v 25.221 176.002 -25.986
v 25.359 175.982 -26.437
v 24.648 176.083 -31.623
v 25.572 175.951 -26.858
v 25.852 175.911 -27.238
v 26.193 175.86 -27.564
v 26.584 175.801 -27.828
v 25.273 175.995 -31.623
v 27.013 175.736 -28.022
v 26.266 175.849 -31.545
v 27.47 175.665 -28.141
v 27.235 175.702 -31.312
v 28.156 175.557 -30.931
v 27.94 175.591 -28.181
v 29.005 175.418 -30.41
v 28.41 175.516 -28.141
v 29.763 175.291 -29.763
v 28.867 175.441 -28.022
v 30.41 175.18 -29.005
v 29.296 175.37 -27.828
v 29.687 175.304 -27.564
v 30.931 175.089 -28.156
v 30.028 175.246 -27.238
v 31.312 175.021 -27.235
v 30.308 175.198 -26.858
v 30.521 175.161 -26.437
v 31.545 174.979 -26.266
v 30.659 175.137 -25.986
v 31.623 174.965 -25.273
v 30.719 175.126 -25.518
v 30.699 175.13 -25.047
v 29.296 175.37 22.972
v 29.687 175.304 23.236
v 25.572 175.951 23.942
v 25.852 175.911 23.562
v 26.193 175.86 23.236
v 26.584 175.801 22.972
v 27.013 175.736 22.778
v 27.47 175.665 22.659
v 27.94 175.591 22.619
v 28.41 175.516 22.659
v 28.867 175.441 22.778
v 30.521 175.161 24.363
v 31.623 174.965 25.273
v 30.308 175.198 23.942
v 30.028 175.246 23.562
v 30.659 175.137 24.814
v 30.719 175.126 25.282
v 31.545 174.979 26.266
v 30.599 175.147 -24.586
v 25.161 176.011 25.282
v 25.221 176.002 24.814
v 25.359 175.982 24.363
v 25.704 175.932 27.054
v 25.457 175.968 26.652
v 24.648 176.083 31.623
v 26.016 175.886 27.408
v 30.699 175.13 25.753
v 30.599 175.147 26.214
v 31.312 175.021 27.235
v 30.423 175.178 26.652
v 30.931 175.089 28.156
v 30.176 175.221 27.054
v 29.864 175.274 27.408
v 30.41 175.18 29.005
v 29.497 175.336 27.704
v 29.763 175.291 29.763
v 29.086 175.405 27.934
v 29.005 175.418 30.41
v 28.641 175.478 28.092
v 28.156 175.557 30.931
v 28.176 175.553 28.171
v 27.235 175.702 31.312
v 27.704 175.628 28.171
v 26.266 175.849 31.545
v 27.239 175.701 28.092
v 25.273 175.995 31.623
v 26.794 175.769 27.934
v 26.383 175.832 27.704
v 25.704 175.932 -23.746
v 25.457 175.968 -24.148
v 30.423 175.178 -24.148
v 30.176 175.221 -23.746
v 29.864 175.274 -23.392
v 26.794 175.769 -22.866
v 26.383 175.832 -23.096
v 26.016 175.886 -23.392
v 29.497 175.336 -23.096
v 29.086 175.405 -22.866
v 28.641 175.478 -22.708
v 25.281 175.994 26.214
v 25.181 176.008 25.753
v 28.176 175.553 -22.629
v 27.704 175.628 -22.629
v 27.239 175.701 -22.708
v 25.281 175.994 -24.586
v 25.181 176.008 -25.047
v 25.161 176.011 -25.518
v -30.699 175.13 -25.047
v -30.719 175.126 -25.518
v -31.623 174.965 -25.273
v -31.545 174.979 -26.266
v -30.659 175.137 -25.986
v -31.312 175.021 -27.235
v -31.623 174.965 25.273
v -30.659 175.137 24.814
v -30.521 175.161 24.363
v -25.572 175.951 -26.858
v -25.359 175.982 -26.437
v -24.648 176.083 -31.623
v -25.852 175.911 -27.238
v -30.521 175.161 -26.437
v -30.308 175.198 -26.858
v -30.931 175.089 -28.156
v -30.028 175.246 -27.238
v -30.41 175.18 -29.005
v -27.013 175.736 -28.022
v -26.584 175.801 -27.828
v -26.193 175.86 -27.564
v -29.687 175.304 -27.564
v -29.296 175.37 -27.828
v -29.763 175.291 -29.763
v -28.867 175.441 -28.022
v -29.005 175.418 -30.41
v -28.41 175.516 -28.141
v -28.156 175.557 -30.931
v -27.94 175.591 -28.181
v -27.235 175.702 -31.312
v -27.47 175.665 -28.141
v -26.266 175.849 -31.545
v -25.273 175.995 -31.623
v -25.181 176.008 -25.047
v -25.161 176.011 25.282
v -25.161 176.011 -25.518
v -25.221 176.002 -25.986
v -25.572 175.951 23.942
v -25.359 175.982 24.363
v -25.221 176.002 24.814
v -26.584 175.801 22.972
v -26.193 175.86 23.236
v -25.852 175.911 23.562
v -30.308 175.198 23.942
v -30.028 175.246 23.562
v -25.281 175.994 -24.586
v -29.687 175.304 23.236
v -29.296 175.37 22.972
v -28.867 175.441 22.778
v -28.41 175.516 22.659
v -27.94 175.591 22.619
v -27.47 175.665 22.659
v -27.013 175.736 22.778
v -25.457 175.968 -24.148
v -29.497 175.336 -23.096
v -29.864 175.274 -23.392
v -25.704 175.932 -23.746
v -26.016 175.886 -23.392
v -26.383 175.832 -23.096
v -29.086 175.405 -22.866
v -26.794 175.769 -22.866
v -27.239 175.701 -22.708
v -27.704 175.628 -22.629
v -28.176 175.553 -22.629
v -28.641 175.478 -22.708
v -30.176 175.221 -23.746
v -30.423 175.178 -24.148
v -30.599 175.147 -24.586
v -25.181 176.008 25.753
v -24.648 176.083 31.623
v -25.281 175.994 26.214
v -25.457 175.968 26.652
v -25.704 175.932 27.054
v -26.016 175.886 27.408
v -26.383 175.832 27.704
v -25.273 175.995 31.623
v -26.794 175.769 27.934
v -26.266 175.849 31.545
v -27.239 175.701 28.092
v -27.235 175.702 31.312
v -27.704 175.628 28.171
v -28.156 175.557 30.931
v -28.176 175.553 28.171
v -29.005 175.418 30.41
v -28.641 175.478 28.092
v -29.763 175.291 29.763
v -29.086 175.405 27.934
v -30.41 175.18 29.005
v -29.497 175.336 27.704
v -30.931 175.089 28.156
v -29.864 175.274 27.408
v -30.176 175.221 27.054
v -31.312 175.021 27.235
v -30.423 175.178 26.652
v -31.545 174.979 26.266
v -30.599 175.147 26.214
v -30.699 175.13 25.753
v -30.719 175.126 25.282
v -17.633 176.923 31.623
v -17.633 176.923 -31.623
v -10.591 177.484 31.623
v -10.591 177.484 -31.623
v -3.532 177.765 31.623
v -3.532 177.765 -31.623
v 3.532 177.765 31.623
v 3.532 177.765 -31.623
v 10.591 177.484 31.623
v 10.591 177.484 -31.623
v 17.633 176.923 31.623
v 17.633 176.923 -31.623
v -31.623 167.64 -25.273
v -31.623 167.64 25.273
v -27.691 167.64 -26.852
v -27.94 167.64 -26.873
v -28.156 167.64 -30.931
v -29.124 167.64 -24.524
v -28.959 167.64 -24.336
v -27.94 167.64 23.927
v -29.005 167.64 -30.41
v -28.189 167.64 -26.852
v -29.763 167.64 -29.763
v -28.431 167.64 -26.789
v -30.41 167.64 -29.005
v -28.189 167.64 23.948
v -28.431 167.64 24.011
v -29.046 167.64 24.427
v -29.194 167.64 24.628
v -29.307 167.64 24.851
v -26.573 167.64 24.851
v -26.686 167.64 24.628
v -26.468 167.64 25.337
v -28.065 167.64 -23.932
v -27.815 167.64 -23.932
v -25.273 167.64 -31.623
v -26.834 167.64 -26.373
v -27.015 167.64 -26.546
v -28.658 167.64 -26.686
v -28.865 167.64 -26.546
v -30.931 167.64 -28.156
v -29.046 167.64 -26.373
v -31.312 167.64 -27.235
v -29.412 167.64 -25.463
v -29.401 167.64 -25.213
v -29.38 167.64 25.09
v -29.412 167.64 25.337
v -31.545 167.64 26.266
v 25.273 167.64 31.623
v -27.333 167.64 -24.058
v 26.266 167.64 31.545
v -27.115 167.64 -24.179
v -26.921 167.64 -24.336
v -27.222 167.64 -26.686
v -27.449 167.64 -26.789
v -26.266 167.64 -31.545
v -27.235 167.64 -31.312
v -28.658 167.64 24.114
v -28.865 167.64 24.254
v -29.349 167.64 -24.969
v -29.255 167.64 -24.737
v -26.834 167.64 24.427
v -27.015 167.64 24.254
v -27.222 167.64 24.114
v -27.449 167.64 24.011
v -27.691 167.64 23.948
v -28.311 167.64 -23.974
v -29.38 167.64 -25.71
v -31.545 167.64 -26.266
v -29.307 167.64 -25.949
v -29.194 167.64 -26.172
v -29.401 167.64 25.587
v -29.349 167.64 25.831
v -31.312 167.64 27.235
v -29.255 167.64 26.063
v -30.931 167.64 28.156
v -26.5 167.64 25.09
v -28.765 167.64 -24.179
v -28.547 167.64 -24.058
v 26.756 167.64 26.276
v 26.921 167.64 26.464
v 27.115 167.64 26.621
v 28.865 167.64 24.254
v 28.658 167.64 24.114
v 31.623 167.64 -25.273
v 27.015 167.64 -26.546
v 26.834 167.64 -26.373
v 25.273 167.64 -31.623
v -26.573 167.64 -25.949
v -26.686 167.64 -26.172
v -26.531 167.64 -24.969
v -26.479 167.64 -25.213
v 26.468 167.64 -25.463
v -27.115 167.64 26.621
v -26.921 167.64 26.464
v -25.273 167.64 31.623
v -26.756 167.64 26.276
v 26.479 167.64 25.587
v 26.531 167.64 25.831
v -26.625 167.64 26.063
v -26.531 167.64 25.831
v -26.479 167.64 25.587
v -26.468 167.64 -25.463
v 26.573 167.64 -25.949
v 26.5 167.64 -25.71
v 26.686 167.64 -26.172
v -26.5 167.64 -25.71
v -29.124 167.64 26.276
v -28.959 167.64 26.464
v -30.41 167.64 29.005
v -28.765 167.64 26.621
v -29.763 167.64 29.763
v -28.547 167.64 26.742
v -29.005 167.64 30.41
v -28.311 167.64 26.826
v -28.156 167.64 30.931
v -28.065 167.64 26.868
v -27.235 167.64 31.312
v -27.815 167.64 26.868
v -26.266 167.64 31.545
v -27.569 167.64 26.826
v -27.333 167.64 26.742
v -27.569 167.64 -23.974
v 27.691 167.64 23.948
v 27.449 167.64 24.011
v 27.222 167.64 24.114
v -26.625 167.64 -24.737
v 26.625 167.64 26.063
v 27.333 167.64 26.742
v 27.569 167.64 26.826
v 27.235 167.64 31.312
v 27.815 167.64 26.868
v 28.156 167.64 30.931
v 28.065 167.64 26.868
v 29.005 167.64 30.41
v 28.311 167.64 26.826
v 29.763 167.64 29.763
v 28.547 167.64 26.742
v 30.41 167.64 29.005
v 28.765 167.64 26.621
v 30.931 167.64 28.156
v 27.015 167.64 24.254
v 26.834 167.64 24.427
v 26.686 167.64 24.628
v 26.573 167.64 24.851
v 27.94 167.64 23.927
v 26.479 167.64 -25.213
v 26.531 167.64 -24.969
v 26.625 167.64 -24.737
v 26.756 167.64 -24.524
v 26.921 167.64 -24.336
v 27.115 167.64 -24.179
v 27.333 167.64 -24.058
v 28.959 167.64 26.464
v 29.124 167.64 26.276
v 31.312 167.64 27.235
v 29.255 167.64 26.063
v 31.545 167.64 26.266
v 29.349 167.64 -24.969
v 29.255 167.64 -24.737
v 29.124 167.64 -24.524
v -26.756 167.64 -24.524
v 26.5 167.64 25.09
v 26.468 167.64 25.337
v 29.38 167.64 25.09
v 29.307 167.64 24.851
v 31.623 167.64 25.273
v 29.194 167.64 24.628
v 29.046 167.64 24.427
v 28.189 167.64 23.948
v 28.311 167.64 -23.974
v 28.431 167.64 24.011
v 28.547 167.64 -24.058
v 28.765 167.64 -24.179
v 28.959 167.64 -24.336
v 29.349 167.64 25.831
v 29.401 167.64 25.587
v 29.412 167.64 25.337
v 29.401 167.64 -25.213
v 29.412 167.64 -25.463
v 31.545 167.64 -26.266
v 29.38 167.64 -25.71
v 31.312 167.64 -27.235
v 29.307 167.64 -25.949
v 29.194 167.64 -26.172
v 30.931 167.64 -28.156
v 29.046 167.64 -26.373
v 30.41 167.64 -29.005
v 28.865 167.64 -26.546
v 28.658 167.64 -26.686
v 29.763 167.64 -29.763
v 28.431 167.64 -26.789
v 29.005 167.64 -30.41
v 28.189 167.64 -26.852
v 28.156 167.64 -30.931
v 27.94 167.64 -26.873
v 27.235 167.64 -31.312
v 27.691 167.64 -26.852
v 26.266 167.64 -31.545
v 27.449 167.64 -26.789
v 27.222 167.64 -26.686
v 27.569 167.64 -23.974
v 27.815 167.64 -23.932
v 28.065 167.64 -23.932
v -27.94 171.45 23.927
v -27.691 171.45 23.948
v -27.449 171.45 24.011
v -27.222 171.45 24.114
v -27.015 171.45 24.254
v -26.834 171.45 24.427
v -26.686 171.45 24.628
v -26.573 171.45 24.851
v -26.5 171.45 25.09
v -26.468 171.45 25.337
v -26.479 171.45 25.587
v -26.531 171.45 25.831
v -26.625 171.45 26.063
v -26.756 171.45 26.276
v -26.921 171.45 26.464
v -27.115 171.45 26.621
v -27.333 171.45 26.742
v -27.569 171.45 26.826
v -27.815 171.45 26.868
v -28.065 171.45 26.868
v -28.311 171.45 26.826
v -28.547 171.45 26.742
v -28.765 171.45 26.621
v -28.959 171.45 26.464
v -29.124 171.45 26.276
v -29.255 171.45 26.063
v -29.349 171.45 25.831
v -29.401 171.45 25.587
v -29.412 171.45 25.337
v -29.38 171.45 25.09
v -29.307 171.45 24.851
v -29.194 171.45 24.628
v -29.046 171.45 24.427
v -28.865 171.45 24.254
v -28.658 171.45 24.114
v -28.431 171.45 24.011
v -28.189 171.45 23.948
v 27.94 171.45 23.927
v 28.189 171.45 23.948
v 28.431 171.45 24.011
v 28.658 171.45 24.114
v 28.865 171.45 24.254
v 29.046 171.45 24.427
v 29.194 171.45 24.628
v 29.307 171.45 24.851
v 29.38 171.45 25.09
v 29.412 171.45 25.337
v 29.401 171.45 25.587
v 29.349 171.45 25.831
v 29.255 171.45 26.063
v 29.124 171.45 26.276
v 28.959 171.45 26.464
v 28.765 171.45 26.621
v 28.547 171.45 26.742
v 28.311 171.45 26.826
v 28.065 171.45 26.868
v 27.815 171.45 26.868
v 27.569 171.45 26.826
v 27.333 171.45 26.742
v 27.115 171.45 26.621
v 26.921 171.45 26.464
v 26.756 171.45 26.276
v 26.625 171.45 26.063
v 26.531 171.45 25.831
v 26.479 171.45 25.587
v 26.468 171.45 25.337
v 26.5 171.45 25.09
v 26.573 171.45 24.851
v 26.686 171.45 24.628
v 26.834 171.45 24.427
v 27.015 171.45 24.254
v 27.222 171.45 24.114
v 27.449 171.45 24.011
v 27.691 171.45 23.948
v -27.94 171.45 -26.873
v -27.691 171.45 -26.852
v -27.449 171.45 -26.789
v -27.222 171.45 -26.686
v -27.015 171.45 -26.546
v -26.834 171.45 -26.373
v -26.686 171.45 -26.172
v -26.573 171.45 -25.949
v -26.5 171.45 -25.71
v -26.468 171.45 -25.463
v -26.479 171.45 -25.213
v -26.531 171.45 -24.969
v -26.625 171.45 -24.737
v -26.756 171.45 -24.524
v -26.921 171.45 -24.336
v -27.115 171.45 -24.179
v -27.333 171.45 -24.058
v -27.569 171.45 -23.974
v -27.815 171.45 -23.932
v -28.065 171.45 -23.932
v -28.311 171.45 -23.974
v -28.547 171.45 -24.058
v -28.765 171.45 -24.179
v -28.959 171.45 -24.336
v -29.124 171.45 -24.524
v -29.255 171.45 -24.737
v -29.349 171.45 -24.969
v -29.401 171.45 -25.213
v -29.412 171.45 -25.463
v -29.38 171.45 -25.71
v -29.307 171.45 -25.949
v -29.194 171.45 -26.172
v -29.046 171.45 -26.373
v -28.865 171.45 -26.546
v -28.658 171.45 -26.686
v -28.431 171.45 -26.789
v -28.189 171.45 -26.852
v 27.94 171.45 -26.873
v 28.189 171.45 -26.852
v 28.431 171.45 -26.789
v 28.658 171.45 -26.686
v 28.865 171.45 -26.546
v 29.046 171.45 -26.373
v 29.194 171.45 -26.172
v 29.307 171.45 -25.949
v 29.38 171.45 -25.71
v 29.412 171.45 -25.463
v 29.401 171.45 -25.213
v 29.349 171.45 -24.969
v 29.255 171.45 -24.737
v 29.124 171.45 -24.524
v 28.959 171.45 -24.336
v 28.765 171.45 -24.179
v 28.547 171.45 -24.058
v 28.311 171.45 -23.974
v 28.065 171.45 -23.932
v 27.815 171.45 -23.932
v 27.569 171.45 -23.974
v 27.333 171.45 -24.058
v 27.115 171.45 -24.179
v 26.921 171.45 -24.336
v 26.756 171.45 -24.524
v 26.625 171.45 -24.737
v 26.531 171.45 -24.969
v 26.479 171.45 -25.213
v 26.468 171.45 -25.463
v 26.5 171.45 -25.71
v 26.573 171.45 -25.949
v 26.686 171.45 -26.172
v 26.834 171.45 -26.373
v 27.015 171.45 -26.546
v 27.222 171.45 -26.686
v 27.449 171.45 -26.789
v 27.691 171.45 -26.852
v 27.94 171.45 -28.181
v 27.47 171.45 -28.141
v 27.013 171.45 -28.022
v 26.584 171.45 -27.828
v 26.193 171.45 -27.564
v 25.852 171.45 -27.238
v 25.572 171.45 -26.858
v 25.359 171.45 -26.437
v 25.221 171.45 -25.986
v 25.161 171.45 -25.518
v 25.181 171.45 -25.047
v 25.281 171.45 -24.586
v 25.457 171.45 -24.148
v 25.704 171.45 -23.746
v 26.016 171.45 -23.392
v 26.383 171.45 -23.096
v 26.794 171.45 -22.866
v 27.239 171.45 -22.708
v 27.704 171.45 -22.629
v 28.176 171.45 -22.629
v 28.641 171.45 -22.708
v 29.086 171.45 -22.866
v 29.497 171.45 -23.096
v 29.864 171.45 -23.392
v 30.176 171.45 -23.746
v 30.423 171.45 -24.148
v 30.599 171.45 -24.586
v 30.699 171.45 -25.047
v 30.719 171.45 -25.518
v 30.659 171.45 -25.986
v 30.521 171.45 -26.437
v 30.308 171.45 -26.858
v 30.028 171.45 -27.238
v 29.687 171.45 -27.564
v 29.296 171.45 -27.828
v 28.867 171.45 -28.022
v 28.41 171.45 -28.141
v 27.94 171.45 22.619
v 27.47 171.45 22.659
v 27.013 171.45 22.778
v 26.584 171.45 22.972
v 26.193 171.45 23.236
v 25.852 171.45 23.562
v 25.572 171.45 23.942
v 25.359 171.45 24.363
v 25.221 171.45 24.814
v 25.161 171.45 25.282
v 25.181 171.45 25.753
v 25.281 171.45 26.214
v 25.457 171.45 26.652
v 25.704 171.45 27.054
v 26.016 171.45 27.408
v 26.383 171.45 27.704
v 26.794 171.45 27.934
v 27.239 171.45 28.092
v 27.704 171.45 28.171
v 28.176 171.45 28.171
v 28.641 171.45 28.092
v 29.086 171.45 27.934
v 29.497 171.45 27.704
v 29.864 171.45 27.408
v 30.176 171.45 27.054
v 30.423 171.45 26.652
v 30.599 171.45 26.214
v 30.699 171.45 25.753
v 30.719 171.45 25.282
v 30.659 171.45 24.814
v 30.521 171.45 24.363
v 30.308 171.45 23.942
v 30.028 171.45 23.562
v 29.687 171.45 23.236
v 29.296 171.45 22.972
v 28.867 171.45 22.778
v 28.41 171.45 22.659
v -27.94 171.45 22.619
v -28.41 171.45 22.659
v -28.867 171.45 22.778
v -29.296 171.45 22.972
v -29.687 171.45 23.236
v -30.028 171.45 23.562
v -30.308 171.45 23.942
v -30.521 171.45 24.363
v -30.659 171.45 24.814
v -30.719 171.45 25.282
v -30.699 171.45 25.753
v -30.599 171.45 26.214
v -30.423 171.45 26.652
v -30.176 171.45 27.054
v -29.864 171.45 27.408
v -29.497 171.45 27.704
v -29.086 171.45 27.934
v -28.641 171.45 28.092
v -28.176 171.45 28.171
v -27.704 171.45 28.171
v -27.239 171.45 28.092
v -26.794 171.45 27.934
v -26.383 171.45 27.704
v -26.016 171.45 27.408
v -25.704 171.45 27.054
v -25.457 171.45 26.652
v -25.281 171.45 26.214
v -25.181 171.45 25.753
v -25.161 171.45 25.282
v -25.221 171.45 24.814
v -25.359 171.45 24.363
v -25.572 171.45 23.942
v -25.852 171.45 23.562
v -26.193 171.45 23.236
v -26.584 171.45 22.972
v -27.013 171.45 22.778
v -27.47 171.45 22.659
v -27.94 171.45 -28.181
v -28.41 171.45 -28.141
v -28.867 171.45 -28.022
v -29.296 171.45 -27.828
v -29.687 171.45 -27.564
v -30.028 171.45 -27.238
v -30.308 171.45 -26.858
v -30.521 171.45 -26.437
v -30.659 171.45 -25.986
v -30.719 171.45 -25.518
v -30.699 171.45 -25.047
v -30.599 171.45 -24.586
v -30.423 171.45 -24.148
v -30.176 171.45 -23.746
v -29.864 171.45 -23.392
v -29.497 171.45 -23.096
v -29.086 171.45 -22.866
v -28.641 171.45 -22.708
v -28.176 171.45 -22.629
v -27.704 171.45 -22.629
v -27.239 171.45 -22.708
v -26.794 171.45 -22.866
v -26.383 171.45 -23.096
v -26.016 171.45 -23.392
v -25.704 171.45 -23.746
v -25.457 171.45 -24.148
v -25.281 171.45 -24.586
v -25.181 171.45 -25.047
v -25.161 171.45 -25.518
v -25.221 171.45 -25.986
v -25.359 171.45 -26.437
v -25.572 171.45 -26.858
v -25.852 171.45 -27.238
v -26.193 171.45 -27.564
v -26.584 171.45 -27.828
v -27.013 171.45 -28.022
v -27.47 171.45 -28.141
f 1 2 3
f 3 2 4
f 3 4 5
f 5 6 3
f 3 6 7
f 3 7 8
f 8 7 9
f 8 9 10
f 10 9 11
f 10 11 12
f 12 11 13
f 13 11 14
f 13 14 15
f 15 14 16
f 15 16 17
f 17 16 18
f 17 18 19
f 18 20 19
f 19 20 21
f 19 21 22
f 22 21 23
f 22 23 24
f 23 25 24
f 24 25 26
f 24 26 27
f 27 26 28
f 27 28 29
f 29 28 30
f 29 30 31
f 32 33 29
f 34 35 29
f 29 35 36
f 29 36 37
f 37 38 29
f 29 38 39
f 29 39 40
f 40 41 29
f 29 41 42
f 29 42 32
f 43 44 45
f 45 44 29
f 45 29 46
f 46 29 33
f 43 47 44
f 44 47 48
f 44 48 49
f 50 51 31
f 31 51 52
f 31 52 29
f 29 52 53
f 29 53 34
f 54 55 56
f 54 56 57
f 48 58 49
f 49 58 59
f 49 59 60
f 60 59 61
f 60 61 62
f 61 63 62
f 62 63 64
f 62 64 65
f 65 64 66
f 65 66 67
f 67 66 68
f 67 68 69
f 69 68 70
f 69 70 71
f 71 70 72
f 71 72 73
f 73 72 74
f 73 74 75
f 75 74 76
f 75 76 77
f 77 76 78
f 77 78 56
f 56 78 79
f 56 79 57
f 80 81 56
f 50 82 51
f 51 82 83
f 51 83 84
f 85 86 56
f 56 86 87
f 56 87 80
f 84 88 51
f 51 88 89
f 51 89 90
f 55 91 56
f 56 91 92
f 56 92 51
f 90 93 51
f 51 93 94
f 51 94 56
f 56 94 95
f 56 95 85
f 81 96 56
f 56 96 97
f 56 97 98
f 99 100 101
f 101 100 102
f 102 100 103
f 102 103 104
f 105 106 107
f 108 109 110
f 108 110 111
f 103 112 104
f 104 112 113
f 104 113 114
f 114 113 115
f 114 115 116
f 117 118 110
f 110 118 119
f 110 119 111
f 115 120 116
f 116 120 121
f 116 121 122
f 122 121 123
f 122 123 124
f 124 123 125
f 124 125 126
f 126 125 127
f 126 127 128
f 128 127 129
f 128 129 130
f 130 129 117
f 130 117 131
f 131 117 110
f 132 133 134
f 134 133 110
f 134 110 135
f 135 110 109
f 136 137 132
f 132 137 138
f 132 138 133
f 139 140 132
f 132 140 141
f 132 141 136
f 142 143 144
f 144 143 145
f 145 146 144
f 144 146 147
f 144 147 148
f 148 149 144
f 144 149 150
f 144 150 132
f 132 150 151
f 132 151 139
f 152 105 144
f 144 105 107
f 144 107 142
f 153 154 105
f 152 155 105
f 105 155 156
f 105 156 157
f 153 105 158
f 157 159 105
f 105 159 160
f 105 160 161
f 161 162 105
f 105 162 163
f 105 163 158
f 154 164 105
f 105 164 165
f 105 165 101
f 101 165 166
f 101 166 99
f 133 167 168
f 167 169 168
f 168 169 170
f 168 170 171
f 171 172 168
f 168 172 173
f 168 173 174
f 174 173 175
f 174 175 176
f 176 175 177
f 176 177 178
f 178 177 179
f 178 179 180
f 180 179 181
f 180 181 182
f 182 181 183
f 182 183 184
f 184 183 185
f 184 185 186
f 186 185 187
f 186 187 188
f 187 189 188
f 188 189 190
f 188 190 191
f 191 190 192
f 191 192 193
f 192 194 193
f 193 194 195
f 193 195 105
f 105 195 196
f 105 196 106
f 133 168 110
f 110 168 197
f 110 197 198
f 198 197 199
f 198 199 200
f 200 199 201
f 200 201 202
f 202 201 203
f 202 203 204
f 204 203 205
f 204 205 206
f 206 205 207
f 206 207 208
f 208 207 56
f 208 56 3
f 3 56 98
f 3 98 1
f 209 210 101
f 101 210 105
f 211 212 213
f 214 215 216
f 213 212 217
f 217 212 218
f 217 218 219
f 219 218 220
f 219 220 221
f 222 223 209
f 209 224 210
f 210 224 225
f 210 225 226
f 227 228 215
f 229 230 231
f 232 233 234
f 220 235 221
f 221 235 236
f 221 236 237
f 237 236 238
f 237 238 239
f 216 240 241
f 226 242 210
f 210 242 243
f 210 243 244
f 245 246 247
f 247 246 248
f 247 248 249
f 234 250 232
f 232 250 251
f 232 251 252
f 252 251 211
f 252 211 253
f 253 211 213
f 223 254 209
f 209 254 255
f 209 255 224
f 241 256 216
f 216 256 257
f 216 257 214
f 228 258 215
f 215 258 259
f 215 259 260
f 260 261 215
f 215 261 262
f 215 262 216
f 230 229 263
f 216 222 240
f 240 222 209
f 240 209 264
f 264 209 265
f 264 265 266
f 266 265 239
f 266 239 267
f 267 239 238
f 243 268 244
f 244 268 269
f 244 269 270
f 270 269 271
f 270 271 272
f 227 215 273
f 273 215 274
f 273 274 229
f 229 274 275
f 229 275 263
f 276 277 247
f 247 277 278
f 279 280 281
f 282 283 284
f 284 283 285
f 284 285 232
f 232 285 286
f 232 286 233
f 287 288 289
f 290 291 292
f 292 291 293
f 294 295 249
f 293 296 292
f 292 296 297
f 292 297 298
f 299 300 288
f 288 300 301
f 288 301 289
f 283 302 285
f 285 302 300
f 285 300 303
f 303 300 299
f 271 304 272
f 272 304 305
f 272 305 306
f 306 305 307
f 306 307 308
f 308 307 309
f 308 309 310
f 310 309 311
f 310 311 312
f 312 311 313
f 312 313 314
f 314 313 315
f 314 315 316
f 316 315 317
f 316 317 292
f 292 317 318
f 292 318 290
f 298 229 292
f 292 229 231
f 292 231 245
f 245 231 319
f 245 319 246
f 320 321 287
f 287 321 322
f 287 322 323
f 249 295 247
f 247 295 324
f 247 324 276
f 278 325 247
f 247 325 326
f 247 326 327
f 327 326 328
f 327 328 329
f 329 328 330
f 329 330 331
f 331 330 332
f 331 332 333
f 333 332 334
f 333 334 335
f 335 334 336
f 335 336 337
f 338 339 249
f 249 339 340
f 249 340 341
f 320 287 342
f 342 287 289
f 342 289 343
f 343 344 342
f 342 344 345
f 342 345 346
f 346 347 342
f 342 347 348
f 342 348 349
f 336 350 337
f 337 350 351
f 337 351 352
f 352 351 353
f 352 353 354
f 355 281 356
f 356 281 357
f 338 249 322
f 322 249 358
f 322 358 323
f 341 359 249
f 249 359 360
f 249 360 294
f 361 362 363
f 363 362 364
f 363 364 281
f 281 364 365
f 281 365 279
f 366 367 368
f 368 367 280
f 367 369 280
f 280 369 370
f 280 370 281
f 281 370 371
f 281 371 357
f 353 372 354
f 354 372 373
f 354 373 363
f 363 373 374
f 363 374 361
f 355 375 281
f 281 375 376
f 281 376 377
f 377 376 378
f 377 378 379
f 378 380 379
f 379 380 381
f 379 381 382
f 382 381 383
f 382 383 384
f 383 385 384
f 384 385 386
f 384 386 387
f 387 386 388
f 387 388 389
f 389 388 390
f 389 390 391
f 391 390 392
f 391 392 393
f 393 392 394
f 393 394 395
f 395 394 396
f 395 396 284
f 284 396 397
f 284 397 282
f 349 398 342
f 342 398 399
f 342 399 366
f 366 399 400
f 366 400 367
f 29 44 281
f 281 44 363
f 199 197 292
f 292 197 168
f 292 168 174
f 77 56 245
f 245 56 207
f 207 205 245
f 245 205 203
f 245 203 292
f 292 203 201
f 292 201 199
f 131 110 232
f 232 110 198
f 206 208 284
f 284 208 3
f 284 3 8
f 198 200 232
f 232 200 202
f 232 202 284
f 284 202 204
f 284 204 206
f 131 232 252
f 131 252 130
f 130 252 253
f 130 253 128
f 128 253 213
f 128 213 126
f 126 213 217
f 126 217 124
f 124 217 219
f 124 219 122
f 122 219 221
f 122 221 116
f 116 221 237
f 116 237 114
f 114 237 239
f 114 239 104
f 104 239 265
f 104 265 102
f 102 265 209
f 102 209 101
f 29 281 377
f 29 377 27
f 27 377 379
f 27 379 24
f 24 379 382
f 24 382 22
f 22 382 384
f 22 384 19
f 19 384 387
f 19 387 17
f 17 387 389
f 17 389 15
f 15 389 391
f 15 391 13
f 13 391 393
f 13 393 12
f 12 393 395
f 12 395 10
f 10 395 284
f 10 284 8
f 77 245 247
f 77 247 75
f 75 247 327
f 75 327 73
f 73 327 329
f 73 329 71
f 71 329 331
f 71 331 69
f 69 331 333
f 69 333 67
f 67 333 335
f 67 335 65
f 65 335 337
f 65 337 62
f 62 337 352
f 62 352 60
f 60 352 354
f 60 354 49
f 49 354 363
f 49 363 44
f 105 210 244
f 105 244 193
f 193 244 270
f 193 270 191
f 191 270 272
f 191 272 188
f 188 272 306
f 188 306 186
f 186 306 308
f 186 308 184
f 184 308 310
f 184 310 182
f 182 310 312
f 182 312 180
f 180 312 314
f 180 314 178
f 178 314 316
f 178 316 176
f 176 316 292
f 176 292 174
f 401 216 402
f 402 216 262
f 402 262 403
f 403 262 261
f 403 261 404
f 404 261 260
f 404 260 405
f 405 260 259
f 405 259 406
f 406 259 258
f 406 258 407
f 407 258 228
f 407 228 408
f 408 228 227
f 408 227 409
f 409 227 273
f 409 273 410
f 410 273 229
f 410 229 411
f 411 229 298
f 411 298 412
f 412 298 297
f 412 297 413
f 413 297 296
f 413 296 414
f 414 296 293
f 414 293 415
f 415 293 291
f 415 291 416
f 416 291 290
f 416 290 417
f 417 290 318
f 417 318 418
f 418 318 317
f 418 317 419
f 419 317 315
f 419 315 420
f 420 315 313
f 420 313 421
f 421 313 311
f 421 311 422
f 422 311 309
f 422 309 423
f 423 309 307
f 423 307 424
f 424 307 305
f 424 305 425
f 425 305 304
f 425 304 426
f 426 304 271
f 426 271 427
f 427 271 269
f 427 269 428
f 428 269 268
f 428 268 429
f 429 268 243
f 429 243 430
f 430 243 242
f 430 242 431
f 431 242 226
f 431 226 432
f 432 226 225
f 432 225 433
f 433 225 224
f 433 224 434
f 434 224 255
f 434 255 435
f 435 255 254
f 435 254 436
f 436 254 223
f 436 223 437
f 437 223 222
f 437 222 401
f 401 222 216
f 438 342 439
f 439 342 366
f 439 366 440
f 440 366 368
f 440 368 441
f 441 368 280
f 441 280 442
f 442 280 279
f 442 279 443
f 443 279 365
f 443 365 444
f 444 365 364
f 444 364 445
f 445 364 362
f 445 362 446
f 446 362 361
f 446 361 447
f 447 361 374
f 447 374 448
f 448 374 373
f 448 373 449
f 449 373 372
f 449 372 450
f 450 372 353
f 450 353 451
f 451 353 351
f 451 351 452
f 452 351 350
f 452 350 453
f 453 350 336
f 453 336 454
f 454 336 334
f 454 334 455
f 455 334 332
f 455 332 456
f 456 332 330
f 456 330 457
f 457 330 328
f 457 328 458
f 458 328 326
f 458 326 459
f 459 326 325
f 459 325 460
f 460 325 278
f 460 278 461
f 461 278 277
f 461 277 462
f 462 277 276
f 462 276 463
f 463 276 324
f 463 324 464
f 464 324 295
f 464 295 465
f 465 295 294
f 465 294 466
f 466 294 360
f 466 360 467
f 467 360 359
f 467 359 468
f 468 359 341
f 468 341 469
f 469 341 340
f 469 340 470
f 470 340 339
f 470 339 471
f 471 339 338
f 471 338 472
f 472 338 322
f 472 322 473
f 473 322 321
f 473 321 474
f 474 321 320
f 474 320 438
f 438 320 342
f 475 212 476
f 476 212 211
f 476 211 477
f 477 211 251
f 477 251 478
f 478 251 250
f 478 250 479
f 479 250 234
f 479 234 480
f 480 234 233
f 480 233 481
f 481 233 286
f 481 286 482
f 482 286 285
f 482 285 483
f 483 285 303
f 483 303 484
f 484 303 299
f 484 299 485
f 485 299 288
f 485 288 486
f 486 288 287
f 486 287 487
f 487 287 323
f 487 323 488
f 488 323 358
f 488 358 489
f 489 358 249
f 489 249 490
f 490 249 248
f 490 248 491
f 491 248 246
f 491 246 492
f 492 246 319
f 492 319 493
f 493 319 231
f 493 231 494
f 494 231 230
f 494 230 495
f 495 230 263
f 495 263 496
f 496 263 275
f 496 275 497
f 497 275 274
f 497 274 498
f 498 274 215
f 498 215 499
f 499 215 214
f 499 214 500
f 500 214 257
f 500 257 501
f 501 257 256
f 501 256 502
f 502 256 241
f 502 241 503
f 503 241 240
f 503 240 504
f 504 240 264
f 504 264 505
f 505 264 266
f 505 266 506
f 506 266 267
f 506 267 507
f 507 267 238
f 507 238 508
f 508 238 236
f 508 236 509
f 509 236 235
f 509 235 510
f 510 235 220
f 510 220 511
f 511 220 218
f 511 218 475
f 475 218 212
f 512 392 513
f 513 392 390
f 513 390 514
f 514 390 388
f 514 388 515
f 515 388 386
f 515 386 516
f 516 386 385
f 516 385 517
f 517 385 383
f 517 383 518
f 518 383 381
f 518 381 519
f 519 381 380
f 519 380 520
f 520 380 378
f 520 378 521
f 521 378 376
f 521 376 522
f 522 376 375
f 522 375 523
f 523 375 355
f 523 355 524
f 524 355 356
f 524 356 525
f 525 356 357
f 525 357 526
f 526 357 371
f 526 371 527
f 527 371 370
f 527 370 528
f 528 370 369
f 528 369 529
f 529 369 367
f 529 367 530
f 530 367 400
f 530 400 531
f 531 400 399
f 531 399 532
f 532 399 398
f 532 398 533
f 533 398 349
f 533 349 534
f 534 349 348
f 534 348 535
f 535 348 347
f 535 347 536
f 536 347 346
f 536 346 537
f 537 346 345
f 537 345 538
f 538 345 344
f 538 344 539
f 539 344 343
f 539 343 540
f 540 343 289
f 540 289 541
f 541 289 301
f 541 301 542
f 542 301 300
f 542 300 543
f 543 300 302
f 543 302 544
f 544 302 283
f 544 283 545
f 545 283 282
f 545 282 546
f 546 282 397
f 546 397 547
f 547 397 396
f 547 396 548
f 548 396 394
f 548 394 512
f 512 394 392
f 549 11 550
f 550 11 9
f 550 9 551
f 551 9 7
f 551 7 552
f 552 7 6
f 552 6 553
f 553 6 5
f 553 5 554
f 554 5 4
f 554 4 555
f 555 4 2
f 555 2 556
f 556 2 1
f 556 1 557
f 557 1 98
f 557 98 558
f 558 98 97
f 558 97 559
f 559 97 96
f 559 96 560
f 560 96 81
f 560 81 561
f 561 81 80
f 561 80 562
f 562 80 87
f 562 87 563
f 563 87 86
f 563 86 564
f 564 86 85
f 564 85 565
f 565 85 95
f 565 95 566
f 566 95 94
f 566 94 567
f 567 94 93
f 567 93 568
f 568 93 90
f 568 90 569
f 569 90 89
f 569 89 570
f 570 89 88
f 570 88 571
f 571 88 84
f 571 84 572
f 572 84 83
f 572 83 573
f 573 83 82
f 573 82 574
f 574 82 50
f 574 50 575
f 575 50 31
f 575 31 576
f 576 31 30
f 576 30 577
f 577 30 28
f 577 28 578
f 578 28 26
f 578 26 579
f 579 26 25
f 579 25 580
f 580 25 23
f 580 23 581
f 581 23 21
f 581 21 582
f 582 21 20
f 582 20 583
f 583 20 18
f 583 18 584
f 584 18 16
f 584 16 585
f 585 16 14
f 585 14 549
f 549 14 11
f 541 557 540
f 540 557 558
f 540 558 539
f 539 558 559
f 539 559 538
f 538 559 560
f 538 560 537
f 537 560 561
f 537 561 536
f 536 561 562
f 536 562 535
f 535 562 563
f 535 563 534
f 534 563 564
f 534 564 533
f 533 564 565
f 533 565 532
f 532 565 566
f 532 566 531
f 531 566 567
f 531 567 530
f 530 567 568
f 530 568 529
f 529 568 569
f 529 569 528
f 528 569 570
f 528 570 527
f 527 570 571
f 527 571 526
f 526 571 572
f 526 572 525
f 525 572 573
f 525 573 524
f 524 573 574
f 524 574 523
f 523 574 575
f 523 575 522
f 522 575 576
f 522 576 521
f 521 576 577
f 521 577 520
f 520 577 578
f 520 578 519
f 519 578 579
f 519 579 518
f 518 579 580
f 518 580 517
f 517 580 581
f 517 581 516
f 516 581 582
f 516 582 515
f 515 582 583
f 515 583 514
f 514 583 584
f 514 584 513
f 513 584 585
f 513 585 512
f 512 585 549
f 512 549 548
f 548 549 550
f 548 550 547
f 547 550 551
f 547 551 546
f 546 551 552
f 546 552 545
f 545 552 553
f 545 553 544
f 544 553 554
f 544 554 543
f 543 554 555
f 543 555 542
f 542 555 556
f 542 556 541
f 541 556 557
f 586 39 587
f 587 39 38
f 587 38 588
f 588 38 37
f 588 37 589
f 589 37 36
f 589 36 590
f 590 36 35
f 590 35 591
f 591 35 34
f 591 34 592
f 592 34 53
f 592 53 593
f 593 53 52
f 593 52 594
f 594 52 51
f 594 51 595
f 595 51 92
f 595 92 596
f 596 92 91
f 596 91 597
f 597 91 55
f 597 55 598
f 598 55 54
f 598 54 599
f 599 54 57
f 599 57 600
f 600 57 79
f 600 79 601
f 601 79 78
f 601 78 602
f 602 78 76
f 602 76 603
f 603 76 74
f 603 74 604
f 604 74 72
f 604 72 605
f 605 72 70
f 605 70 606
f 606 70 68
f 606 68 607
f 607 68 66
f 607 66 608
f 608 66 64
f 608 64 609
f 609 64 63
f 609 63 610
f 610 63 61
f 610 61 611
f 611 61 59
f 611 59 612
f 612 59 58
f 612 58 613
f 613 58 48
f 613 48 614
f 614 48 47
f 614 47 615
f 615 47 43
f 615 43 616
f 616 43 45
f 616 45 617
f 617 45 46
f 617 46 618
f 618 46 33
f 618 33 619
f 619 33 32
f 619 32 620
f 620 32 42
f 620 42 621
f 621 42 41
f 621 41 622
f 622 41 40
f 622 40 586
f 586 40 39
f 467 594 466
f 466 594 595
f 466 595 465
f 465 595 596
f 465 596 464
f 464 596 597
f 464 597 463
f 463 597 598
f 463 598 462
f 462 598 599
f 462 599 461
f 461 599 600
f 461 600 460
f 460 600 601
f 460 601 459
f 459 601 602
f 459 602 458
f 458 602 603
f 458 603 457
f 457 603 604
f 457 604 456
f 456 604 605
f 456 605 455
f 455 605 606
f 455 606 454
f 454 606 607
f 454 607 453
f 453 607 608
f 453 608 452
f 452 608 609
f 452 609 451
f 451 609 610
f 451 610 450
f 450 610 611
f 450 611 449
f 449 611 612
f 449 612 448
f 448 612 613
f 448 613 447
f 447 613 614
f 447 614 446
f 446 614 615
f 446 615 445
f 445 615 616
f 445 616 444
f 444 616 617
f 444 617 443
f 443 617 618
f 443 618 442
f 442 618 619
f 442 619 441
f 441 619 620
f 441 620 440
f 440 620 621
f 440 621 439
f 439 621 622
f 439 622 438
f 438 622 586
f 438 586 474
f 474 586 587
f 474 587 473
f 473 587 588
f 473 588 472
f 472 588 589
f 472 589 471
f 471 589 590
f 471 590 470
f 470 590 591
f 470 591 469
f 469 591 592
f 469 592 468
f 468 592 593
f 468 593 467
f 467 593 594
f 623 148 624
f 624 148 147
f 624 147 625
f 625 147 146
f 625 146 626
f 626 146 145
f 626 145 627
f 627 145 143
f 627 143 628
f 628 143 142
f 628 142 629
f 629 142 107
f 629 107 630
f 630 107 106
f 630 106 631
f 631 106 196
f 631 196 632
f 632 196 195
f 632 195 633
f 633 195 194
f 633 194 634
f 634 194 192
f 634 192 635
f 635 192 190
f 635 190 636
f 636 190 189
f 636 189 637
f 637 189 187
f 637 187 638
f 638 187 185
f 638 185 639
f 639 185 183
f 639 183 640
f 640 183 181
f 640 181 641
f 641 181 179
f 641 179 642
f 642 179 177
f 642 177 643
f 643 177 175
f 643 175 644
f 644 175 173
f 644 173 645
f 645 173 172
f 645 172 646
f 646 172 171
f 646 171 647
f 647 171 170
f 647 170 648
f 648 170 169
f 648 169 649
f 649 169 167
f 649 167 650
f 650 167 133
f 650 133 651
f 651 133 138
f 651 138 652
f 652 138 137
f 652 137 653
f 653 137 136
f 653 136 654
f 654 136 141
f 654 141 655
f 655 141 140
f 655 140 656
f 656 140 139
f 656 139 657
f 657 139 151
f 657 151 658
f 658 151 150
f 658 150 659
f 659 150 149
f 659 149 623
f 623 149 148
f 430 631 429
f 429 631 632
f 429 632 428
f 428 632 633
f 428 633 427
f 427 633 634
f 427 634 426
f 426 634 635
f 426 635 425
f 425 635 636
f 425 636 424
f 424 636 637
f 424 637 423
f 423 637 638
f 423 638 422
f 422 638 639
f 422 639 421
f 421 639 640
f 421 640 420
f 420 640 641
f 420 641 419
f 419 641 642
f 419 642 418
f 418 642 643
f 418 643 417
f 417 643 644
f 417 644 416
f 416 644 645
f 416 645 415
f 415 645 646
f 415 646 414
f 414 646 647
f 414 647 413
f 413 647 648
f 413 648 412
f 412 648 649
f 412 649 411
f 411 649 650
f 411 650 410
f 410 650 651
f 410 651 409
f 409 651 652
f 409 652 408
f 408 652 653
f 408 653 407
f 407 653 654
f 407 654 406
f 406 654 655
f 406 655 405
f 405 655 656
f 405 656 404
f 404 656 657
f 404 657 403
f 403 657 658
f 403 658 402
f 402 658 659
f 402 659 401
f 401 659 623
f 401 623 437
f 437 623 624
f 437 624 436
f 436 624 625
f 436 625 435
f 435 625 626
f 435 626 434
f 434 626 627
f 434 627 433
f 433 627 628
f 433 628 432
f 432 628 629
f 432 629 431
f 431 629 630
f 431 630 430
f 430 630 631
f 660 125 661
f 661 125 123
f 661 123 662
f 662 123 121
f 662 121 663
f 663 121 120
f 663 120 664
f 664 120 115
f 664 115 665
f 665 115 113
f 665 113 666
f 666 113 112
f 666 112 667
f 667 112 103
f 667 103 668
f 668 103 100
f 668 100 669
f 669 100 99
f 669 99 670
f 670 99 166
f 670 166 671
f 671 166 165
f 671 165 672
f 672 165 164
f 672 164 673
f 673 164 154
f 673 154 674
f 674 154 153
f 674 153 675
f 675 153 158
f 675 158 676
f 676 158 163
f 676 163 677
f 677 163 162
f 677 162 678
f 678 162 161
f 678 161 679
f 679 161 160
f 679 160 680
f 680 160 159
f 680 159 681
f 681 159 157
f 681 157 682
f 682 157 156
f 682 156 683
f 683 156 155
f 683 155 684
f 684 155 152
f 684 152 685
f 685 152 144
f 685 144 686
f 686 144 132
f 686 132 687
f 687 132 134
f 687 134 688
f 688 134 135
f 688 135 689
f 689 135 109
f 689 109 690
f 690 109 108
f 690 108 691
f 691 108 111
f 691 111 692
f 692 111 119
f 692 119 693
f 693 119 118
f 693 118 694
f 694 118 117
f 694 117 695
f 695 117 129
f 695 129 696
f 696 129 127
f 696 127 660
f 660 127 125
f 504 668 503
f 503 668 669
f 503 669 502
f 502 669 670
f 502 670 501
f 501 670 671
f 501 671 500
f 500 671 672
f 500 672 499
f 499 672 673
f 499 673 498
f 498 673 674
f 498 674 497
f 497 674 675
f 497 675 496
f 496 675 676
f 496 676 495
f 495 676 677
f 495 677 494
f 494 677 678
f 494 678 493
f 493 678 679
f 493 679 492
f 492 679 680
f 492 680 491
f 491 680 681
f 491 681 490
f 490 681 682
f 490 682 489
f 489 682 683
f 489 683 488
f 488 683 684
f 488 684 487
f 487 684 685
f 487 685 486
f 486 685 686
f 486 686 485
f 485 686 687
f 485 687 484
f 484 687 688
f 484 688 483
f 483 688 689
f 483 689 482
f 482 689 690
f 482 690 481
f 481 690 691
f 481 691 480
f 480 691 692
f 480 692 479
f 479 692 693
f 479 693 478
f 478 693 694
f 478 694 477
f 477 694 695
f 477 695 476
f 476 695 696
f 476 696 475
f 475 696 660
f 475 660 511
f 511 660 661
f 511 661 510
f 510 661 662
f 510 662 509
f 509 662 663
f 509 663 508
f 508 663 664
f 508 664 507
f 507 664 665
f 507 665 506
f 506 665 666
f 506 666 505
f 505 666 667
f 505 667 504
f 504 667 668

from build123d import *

# Parameters (mm, degrees)
BOSS_EXTRUDE1_DEPTH             = 31.623
FILLET1_R                       = 6.35
F_32_0_116_DIAMETER_HOLE1_D     = 2.9464
F_32_0_116_DIAMETER_HOLE1_DEPTH = 3.81
SKETCH7_R                       = 2.7813
CUT_EXTRUDE4_DEPTH              = 46.170242106


with BuildPart() as part:
    # Sketch1 → Boss-Extrude1 (new, symmetric)
    with BuildSketch(Plane.XY):
        with BuildLine():
            Line((-31.623, 174.965213317), (-31.623, 167.64))
            Line((-31.623, 167.64), (-24.003, 167.64))
            Line((-24.003, 167.64), (24.003, 167.64))
            Line((24.003, 167.64), (31.623, 167.64))
            Line((31.623, 167.64), (31.623, 174.965213317))
            ThreePointArc((31.623, 174.965213317), (0, 177.8), (-31.623, 174.965213317))
        make_face()
    extrude(amount=BOSS_EXTRUDE1_DEPTH, both=True)

    # Fillet1
    fillet1_edges = [part.edges().sort_by_distance(p)[0] for p in [
        (-31.623, 171.302606658, -31.623),
        (31.623, 171.302606658, -31.623),
        (31.623, 171.302606658, 31.623),
        (-31.623, 171.302606658, 31.623),
    ]]
    fillet(fillet1_edges, radius=FILLET1_R)

    # #32 (0.116) Diameter Hole1
    with Locations(Plane.XZ.offset(-167.64)):
        with Locations((27.94, -25.4), (-27.94, -25.4), (27.94, 25.4), (-27.94, 25.4)):
            Hole(F_32_0_116_DIAMETER_HOLE1_D / 2, depth=F_32_0_116_DIAMETER_HOLE1_DEPTH)

    # Sketch7 → Cut-Extrude4 (cut, through all)
    with BuildSketch(Plane.XZ.offset(-171.45)):
        with Locations((27.94, -25.4)):
            Circle(SKETCH7_R)
        with Locations((27.94, 25.4)):
            Circle(SKETCH7_R)
        with Locations((-27.94, 25.4)):
            Circle(SKETCH7_R)
        with Locations((-27.94, -25.4)):
            Circle(SKETCH7_R)
    extrude(amount=-CUT_EXTRUDE4_DEPTH, mode=Mode.SUBTRACT)


solid = part.part
